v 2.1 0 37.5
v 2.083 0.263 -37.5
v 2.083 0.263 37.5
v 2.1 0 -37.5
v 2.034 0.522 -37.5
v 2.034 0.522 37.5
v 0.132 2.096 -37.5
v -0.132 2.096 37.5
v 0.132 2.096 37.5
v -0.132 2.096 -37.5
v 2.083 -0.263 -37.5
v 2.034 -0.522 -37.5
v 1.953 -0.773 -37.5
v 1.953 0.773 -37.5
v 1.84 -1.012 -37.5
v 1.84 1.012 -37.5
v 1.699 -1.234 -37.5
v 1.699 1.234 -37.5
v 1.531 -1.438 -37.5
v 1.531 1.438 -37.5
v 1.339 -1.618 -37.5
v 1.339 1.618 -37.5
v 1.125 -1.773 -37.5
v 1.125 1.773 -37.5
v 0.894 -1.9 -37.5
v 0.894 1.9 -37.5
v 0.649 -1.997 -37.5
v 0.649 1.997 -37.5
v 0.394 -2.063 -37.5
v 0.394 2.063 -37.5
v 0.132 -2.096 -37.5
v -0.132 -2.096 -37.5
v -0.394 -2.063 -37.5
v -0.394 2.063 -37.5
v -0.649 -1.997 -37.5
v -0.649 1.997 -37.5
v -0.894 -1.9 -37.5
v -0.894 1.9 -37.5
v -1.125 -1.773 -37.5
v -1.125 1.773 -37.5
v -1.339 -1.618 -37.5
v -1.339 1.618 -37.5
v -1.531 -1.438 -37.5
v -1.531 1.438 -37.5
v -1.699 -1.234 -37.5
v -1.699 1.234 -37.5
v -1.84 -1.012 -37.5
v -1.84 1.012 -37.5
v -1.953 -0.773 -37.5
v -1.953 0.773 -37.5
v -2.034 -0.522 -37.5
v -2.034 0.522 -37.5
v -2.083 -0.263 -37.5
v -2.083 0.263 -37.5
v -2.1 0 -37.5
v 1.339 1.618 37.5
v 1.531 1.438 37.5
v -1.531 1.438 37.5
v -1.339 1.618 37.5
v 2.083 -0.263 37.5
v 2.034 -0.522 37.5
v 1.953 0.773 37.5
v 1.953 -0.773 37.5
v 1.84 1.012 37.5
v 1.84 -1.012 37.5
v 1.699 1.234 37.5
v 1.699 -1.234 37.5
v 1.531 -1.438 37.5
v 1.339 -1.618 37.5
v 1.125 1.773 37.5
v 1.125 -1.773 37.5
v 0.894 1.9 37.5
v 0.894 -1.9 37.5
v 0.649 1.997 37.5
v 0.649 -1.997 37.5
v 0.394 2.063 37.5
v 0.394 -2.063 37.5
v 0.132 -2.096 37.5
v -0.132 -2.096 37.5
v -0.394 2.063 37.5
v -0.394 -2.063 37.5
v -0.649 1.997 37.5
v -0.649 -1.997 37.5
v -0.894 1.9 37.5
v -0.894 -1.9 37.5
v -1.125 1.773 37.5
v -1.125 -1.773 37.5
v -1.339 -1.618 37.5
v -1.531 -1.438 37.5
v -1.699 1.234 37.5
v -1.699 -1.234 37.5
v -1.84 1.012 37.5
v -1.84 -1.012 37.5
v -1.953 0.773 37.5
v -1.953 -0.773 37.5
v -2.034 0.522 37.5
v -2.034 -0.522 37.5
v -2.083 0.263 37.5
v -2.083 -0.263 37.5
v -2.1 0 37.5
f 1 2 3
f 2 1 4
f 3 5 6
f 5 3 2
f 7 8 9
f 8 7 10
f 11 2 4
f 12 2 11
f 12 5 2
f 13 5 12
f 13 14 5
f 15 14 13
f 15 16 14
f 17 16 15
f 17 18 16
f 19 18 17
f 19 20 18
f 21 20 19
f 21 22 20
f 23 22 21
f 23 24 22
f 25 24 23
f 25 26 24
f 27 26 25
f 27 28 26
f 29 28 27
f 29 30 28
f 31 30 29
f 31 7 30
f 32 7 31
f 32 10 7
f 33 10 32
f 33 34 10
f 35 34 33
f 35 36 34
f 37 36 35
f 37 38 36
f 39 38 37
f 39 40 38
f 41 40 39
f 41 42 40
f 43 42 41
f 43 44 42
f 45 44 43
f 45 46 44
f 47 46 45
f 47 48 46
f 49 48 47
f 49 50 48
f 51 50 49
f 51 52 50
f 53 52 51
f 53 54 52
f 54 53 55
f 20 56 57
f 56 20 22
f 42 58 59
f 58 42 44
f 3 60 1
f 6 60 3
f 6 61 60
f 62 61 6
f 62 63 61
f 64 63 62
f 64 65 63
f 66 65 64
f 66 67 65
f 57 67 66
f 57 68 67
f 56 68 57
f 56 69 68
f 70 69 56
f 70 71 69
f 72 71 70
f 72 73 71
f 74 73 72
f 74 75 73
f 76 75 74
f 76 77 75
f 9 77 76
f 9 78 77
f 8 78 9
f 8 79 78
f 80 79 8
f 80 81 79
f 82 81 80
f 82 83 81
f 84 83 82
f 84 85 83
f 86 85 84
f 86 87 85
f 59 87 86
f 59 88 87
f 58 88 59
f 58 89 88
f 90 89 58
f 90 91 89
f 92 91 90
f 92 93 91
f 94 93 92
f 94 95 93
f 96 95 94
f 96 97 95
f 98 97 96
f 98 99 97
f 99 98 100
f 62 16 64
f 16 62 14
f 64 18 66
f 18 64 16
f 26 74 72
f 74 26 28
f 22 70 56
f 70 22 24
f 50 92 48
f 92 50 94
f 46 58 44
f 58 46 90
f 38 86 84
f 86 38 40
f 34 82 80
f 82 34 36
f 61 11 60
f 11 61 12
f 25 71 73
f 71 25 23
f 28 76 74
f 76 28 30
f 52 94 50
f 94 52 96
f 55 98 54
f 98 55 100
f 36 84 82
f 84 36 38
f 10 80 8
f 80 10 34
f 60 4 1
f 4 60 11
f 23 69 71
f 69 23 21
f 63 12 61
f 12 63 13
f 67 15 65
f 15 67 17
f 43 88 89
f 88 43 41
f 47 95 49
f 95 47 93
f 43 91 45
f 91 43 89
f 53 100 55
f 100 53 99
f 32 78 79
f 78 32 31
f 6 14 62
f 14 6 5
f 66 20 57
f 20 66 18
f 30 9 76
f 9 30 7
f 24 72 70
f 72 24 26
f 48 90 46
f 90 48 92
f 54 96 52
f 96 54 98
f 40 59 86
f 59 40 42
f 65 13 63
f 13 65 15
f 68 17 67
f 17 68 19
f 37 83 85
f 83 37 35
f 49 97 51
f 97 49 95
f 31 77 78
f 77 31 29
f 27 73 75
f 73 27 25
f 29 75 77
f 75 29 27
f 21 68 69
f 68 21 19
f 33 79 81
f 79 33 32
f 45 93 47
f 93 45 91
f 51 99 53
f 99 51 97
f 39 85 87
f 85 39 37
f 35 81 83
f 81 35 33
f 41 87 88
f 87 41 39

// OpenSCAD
$fn = 50;


difference() {
	union() {
		translate(v = [0, 0, -37.5000000000]) {
			cylinder(h = 75, r = 2.1000000000);
		}
	}
	union() {
		translate(v = [0, 0, -100.0000000000]) {
			cylinder(h = 200, r = 0);
		}
	}
}
